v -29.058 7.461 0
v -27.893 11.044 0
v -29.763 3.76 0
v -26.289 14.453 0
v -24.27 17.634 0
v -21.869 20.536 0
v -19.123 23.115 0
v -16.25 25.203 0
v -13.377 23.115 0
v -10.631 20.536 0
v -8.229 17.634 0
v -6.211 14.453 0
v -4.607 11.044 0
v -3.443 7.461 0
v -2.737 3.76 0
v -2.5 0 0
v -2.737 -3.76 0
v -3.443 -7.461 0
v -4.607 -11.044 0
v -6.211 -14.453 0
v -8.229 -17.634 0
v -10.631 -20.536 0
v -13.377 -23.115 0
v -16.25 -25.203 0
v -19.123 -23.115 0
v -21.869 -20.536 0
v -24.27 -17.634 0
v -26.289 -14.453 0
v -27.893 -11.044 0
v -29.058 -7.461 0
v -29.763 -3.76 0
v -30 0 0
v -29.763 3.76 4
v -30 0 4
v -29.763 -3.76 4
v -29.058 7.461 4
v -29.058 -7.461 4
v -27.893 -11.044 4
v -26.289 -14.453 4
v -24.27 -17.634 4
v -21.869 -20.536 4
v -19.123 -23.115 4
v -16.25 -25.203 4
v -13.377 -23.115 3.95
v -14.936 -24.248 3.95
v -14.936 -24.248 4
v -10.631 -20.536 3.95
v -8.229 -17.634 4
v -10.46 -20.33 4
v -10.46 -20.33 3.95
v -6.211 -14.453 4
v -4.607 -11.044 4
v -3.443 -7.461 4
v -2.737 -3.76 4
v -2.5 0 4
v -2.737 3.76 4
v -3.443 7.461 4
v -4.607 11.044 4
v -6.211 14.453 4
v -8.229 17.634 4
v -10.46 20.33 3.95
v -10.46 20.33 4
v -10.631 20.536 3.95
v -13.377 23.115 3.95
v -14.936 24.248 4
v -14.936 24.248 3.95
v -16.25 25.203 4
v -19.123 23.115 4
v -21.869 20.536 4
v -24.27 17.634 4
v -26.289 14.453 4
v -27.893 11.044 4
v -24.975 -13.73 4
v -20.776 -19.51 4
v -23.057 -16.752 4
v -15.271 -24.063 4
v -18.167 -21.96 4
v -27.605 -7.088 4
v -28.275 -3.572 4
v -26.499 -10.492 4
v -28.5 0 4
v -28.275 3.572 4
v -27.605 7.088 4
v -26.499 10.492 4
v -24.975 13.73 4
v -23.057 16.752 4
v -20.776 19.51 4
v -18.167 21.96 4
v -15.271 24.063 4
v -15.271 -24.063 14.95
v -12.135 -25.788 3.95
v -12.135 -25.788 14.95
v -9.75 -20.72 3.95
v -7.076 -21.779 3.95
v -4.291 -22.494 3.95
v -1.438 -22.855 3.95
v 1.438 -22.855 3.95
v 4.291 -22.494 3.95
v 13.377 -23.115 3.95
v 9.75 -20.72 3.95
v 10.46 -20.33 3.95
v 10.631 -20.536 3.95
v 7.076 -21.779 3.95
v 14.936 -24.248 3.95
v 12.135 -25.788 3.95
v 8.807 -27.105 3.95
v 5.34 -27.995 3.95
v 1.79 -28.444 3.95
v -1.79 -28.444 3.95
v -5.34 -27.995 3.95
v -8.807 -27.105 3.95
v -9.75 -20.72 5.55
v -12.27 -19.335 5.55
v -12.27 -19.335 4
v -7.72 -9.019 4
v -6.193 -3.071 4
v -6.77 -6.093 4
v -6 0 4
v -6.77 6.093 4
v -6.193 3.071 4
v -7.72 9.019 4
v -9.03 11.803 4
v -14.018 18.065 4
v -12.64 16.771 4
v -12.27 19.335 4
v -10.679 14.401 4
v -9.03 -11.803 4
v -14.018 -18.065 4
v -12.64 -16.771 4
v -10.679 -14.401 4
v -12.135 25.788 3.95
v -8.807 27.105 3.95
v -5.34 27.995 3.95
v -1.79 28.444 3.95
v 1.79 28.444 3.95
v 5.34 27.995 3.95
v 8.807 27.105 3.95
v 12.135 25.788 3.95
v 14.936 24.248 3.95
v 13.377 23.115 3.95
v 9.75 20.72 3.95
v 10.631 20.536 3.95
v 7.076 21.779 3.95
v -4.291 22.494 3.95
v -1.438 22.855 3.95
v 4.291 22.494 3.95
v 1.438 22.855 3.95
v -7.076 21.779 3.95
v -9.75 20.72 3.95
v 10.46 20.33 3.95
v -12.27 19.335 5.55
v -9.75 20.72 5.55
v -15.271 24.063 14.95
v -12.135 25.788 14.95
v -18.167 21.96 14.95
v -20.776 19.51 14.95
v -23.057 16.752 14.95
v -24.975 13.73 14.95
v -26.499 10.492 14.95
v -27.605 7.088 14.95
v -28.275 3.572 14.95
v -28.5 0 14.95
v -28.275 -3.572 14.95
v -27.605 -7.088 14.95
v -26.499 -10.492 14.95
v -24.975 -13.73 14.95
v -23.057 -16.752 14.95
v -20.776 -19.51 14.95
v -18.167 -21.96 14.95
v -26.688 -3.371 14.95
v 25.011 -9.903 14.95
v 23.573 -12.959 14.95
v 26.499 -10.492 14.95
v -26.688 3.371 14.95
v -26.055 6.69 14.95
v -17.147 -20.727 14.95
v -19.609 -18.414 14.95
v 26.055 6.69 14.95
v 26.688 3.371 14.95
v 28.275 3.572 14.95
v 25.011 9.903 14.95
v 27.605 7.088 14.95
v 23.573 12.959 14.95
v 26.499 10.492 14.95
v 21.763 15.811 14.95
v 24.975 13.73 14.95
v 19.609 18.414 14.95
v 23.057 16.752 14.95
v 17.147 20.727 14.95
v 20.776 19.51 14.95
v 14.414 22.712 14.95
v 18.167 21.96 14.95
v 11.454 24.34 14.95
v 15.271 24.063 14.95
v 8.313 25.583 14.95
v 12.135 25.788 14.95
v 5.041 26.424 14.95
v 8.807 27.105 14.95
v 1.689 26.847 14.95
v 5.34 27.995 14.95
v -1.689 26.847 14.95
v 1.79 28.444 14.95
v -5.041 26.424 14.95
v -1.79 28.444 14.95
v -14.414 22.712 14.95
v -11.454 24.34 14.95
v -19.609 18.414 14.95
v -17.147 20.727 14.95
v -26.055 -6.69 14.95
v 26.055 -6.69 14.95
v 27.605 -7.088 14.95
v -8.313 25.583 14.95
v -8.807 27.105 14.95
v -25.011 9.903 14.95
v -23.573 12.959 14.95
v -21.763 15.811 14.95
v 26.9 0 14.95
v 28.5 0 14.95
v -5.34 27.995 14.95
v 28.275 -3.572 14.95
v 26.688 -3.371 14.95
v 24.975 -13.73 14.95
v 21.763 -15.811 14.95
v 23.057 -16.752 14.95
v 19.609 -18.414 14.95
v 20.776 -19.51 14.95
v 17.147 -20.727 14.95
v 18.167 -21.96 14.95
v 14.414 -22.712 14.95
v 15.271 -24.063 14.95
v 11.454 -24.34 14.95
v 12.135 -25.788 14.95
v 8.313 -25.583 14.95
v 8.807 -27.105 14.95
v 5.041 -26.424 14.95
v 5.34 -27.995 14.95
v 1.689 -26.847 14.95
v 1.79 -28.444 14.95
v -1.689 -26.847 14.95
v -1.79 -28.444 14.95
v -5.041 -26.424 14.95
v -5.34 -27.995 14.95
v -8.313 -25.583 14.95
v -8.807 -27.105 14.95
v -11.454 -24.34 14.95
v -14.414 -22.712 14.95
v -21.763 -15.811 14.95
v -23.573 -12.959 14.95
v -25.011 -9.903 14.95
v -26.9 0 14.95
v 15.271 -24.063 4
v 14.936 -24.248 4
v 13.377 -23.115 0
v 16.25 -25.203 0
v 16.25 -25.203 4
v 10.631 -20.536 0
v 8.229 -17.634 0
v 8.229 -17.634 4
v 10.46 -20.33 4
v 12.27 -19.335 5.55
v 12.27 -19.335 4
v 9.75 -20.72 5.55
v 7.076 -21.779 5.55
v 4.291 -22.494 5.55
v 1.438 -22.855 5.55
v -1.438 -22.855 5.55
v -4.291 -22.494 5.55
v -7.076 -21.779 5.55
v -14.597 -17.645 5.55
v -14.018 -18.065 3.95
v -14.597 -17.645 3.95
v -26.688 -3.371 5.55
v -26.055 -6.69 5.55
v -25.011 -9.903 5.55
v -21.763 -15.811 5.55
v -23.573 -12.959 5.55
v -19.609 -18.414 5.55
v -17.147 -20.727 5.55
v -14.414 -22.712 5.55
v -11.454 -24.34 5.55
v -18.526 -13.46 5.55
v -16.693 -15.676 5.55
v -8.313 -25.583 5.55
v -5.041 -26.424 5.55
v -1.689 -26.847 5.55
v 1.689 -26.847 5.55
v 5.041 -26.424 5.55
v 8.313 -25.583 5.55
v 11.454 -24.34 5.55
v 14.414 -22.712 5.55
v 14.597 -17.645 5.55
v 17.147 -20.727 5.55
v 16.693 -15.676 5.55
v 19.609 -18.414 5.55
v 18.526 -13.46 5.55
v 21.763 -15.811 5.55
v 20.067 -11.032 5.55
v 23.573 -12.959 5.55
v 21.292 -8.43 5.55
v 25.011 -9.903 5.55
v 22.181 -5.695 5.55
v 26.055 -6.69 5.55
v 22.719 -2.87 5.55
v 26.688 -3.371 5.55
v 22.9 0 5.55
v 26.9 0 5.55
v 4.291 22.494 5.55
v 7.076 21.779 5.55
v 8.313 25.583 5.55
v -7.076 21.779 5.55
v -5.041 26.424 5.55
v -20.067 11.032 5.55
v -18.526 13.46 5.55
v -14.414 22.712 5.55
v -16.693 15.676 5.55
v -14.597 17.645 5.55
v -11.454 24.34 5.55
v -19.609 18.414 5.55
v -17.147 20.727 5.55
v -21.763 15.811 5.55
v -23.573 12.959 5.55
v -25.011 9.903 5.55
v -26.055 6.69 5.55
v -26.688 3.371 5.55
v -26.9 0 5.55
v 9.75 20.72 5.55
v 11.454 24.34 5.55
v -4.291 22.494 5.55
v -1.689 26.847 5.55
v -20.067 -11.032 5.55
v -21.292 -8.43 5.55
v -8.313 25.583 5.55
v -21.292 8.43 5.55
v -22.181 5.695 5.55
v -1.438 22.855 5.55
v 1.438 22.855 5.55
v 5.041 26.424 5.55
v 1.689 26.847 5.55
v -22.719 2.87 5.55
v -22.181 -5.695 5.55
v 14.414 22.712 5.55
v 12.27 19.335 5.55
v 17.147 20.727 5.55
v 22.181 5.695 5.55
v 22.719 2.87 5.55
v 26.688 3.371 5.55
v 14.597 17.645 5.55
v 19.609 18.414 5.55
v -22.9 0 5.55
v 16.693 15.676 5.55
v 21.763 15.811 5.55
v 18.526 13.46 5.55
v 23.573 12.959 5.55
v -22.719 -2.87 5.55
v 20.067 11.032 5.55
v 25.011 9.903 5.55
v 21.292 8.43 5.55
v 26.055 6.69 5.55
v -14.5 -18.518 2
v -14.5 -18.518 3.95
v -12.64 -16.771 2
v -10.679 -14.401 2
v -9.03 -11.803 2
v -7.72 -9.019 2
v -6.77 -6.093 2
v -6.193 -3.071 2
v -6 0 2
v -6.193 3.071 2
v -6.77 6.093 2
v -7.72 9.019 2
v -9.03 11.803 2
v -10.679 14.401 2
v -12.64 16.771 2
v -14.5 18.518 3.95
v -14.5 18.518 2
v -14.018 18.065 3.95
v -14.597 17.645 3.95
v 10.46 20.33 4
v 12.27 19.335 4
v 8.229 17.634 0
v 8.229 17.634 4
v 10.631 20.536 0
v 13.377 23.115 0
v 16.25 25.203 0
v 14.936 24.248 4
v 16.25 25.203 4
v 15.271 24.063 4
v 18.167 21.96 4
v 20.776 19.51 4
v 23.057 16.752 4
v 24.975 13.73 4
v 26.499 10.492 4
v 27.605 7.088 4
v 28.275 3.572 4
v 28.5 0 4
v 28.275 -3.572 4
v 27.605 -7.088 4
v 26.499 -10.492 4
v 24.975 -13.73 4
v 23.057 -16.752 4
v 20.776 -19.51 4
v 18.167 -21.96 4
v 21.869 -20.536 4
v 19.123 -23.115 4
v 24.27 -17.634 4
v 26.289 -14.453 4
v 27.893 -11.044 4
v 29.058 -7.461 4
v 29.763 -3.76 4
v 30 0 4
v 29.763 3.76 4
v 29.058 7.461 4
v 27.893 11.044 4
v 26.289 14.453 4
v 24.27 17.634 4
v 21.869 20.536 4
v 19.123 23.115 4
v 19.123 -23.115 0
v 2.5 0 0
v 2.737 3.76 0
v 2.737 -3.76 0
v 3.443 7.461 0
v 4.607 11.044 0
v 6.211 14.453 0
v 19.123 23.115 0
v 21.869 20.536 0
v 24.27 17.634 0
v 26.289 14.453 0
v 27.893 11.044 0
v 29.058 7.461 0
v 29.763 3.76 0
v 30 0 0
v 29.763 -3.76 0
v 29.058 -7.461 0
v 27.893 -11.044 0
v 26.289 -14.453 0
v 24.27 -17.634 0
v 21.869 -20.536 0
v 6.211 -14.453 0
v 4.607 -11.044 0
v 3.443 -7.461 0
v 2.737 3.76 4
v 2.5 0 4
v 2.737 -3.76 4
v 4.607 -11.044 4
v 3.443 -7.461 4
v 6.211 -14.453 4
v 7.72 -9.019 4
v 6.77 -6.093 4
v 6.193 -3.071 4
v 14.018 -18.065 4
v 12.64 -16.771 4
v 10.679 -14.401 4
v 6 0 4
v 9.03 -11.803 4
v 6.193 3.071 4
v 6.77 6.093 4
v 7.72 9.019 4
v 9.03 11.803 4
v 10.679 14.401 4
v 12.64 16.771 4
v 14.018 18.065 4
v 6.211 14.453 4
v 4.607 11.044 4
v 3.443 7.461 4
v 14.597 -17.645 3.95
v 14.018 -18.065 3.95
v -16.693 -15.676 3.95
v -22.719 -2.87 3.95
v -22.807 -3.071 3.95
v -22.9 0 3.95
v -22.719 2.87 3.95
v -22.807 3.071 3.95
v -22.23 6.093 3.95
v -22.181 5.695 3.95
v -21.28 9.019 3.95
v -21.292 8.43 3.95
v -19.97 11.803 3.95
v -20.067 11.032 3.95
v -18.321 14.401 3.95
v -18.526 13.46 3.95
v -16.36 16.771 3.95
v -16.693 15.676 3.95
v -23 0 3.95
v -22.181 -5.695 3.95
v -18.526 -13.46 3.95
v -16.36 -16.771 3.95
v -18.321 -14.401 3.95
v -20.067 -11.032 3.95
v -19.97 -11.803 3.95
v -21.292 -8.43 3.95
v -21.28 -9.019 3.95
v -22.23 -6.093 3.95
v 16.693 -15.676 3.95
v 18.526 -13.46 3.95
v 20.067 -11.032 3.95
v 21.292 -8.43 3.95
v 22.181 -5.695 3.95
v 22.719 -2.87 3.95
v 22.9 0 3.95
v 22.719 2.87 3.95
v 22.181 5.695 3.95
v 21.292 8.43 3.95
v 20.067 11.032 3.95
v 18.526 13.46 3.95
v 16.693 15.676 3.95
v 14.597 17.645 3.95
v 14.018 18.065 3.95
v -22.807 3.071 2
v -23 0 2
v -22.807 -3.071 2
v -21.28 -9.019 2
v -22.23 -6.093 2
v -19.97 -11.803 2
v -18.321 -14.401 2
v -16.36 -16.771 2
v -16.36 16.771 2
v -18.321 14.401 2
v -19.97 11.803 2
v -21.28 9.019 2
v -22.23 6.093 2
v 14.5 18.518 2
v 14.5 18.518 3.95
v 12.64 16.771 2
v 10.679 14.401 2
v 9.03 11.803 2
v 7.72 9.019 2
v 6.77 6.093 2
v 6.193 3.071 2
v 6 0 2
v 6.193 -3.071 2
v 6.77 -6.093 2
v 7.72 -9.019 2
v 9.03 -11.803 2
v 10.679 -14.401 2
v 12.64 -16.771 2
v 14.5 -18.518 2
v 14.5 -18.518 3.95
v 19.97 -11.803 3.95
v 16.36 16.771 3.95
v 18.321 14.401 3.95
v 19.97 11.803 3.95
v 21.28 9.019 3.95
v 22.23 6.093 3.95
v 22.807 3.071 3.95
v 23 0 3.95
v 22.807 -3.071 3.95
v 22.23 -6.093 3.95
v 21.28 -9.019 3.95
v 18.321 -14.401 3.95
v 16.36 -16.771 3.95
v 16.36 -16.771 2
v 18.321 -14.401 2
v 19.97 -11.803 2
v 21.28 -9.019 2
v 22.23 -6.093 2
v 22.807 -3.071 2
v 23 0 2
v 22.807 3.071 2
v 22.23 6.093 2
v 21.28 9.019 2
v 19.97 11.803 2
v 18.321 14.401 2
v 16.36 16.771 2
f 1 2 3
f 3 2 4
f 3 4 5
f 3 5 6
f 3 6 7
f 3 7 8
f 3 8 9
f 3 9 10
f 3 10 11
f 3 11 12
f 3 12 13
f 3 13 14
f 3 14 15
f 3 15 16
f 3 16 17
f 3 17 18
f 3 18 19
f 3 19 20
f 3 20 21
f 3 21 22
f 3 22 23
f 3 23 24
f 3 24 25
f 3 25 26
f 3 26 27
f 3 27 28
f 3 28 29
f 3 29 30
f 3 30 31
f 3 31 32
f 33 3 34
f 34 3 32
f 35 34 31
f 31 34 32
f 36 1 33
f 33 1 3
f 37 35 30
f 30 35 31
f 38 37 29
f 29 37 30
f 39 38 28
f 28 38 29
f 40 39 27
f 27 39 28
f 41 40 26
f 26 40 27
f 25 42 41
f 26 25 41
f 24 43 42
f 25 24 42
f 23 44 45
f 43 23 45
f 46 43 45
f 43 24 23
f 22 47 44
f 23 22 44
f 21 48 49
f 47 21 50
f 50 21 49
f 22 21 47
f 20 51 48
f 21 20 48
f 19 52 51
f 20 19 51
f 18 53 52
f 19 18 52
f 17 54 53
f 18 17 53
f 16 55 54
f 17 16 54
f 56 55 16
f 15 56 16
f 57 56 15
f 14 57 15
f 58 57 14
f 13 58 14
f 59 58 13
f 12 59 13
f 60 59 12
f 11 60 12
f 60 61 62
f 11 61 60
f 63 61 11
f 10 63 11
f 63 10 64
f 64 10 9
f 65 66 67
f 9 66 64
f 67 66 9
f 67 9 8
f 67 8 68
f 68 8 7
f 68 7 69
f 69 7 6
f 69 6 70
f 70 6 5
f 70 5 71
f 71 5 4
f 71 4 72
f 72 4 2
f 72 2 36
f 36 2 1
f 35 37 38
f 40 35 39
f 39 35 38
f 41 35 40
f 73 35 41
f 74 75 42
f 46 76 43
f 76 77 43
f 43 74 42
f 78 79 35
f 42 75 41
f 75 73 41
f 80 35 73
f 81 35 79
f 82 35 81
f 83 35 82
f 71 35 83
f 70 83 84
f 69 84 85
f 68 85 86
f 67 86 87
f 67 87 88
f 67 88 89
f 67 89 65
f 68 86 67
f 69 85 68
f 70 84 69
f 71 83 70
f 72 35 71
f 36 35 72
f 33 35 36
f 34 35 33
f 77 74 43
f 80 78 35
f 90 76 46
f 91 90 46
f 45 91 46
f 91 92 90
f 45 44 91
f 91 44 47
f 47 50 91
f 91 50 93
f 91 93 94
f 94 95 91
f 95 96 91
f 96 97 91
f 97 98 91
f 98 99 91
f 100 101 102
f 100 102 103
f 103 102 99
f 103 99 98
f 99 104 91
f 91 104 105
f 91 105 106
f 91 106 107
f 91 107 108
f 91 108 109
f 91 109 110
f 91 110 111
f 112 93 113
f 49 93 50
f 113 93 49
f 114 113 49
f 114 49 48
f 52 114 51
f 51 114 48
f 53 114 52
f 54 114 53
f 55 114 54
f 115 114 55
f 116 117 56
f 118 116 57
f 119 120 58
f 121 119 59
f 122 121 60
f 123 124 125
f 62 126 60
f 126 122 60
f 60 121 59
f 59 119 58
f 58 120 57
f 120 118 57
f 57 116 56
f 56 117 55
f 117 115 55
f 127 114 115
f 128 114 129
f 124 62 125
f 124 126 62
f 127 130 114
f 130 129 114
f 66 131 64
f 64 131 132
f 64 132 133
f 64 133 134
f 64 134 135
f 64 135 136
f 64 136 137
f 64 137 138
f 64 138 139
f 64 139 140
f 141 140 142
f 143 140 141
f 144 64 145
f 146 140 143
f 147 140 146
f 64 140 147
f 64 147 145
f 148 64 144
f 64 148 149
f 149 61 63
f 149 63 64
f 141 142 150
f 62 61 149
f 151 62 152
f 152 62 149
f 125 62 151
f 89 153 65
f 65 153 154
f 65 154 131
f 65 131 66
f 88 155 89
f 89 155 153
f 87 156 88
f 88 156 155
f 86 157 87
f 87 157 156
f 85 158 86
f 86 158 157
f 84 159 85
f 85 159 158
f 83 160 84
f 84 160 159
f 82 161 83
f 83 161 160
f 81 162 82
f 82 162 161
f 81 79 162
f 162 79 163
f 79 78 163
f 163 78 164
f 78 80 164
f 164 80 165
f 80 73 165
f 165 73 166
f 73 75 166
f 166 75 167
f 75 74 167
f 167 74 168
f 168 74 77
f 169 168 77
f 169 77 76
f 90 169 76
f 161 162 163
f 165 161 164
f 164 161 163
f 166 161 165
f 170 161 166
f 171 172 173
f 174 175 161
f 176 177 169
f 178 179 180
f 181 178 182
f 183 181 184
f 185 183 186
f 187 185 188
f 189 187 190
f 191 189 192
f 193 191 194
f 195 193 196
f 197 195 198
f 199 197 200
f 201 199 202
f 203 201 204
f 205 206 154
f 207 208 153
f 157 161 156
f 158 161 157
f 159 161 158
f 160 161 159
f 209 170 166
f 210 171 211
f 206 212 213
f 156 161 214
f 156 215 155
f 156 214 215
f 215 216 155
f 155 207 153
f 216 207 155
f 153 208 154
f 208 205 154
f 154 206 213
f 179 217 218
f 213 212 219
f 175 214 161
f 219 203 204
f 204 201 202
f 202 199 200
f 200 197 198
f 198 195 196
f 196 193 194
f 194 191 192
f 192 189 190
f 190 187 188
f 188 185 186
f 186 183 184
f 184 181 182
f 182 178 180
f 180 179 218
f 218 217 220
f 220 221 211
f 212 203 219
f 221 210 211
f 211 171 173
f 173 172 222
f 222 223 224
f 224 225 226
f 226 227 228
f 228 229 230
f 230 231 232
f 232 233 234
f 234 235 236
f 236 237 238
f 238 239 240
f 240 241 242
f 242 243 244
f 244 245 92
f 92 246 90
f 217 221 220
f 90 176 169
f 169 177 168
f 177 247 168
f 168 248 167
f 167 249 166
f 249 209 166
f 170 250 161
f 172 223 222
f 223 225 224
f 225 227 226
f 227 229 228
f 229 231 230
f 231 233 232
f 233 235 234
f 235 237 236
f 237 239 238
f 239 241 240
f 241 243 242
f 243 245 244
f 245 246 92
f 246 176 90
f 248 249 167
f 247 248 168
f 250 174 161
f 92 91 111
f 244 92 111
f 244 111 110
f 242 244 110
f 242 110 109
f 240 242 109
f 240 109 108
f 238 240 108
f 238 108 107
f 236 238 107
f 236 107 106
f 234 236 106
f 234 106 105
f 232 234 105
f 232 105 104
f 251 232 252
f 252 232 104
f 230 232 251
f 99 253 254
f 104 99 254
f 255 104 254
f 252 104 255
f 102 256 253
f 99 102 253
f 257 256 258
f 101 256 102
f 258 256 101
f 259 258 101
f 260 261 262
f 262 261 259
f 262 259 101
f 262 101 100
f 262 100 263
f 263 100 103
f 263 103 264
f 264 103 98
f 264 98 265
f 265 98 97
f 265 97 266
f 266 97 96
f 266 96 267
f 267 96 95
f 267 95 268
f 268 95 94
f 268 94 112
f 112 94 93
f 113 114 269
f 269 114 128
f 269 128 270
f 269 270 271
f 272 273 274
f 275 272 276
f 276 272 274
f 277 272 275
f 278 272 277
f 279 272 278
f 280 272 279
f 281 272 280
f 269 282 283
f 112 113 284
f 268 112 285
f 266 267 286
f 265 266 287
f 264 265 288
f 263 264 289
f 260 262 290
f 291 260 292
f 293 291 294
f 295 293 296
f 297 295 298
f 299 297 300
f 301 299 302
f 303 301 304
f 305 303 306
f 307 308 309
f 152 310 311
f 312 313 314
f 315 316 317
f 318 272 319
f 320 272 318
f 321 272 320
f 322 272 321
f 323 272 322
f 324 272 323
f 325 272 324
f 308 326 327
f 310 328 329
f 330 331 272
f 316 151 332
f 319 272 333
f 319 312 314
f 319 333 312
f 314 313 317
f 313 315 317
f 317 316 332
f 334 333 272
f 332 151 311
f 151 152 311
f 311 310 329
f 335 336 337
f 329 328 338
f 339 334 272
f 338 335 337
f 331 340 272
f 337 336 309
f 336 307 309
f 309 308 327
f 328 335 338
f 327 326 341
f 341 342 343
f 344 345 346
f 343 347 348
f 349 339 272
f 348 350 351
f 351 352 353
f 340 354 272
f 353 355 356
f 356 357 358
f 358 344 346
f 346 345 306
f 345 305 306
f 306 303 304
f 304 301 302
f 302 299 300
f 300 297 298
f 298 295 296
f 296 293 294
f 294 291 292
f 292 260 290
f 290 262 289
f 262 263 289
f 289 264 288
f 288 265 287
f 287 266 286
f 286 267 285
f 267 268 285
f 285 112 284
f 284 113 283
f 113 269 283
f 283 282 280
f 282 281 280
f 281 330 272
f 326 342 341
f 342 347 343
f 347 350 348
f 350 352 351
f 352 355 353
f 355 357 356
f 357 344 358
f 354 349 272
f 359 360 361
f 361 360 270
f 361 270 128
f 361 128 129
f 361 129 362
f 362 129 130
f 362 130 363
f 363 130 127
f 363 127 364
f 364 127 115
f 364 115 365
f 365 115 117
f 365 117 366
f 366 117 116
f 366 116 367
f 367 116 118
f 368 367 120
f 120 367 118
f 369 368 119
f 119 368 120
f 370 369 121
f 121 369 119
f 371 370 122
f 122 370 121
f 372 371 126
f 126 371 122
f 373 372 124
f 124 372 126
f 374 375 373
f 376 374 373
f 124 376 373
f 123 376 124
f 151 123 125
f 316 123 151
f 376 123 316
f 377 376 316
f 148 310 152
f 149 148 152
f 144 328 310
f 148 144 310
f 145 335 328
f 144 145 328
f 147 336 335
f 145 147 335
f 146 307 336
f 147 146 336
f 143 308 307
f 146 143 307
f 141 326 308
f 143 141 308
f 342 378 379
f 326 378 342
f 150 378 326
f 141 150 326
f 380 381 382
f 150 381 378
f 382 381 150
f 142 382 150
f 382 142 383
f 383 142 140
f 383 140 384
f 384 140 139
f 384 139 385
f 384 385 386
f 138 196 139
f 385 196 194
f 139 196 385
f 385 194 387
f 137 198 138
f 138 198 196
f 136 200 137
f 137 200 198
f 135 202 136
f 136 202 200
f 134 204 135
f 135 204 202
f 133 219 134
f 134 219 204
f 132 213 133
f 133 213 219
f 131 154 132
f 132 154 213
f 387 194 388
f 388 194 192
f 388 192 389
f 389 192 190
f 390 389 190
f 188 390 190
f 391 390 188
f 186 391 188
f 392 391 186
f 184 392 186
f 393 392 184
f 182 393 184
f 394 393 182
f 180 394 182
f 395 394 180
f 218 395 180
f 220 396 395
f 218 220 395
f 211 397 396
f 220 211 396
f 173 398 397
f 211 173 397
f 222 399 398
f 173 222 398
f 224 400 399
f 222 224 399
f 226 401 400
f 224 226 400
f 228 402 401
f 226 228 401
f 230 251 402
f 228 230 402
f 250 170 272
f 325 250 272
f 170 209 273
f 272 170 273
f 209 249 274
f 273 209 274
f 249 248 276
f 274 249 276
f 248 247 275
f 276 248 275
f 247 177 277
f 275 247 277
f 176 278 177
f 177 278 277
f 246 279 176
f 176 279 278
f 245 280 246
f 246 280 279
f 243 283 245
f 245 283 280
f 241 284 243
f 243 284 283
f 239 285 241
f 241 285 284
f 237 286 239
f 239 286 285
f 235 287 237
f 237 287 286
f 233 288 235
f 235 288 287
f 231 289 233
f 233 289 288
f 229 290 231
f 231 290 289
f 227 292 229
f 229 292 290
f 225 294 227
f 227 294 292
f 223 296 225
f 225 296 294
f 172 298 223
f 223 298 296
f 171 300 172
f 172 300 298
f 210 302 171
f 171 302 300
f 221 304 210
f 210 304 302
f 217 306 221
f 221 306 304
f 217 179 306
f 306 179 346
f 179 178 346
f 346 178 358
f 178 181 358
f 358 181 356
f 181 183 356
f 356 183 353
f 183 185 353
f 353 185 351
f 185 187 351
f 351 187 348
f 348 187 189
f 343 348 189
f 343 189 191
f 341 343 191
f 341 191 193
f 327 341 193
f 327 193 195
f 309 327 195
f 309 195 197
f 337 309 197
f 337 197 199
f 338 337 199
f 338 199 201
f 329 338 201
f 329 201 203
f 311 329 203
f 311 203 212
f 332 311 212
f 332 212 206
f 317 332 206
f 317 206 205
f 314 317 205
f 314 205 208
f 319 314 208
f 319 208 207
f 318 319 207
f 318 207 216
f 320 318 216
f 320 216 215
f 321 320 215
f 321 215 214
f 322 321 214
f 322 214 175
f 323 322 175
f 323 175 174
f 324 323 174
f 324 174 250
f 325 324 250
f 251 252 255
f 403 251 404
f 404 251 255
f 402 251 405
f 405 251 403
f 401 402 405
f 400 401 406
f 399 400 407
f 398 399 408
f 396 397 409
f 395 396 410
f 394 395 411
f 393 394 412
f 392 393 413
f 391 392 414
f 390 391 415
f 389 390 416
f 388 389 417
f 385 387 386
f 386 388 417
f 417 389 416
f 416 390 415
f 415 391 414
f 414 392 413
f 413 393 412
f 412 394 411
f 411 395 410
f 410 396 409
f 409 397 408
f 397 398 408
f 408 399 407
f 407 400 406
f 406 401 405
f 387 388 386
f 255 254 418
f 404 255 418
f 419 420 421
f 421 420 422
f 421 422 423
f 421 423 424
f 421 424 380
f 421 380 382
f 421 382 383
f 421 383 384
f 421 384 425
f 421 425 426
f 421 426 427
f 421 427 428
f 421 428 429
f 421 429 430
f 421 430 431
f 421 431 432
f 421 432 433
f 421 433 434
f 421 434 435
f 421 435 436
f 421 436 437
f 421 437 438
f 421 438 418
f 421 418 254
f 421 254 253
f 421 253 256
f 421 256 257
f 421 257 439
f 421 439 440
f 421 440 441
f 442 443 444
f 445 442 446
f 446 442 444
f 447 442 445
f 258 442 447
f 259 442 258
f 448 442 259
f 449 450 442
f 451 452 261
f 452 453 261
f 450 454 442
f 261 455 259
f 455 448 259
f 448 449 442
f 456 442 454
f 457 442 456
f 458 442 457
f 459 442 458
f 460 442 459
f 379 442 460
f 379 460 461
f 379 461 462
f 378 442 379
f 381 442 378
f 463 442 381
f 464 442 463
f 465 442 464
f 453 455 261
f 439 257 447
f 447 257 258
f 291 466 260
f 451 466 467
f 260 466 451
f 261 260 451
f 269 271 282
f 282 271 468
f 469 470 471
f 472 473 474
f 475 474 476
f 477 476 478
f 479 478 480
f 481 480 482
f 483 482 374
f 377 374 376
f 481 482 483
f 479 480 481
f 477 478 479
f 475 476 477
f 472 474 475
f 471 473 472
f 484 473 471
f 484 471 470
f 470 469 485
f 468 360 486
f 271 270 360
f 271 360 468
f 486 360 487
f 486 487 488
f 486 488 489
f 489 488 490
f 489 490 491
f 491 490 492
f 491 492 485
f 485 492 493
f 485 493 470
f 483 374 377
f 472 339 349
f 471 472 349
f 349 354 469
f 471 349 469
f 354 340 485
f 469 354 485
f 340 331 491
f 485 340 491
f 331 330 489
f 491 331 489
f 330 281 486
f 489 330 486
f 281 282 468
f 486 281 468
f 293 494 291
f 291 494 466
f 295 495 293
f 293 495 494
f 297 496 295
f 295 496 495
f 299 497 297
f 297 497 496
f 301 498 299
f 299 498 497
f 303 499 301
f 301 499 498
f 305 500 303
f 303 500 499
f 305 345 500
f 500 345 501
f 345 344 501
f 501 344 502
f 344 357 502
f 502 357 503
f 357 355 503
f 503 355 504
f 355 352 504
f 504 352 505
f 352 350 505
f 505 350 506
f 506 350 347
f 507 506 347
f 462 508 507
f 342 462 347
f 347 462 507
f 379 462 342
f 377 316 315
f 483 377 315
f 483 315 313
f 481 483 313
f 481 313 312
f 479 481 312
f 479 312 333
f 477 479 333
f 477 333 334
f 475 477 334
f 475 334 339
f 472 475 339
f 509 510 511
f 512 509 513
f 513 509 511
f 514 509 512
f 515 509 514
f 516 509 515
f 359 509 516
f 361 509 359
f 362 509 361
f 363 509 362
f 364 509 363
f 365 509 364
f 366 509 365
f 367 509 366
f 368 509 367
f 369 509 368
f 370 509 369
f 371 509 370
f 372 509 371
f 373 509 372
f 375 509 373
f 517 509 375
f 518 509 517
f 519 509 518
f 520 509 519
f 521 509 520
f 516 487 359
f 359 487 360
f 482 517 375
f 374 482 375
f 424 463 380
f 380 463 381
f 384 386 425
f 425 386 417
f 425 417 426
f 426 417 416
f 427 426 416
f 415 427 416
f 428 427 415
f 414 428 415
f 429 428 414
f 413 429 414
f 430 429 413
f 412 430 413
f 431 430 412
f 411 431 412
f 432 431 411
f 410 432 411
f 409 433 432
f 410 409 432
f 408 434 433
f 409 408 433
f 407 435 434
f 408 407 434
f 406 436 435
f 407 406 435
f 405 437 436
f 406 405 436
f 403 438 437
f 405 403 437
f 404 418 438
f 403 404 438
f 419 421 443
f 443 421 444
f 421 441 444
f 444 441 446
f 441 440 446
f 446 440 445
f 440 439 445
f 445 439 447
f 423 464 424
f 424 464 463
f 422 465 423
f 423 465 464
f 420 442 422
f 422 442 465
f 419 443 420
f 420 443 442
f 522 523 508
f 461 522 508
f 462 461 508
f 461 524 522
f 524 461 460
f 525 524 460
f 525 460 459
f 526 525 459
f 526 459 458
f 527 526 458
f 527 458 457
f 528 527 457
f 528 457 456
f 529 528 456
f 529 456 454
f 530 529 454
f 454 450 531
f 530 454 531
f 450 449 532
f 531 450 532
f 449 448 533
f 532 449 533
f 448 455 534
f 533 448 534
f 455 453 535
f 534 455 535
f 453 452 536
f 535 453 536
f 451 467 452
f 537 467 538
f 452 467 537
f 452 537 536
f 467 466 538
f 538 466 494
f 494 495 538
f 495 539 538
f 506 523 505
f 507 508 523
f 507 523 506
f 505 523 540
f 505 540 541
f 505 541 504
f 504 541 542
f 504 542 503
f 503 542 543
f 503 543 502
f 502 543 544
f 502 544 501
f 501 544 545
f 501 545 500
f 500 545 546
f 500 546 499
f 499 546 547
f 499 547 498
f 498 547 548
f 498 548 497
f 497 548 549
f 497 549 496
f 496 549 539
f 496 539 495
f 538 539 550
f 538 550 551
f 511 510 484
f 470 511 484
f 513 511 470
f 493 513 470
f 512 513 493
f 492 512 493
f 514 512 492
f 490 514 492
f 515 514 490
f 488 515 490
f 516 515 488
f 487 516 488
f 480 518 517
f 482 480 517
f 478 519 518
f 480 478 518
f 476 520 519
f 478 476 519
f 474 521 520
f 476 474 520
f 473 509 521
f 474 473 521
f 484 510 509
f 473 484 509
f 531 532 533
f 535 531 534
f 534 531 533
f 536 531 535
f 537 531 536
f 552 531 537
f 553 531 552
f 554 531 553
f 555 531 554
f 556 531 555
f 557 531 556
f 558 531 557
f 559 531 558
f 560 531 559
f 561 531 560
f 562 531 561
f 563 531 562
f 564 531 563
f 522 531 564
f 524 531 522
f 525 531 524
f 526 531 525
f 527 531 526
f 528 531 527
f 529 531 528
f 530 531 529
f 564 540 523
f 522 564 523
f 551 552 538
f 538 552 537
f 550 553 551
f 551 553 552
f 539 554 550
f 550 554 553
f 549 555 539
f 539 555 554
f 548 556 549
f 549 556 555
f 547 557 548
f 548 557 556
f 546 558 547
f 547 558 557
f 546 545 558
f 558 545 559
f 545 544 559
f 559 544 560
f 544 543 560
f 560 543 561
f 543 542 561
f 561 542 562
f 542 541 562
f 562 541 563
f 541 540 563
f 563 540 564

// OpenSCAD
// Ant poison trap/buffer that matches the stuff made by ECOstyle in DK

outer_radius = 57 / 2.0;
default_thickness = 1.6;
stiffener_width = 4;
total_height = 15;
trap_outside_height = 4;
trap_depth = 2;
ledge_width = 4;


lid_grip_height = total_height - trap_outside_height;
trap_width = 27.5;


pad = 0.05;
$fn = 50;

// Build the walls
module walls() {
    // The stuff that goes into the lid
    difference() {
        cylinder( r = outer_radius, h = lid_grip_height );
        // Cut main hole
        translate([0,0,default_thickness]) {
            cylinder( r = outer_radius - default_thickness, h = lid_grip_height );
        }
        // Cut hole through to ground
        translate([0,0,-pad]) {
            cylinder( r = outer_radius - default_thickness - stiffener_width, h = lid_grip_height );
        }
    }
}

// Build a leaf/trap
module leaf( radius, width, thickness ) {
    intersection() {
        cylinder( r = radius, h = thickness );

        translate([radius*2 - width,0,0]) {
            cylinder( r = radius, h = thickness );
        }
    }
}

module single_trap(offset) {
    difference() {
        leaf( outer_radius + 1.5, trap_width, trap_outside_height );
        translate([-offset,0,trap_outside_height - trap_depth]) {
            leaf( outer_radius + 1.5 - 5.5, 17, trap_outside_height );
        }
    }
}

module traps() {
    single_trap( 1.5);
    mirror([1,0,0]) {
        single_trap( 1.5);
    }
}

// The whole trap

translate([0,0,trap_outside_height-pad]) {
    walls();
}
traps();
